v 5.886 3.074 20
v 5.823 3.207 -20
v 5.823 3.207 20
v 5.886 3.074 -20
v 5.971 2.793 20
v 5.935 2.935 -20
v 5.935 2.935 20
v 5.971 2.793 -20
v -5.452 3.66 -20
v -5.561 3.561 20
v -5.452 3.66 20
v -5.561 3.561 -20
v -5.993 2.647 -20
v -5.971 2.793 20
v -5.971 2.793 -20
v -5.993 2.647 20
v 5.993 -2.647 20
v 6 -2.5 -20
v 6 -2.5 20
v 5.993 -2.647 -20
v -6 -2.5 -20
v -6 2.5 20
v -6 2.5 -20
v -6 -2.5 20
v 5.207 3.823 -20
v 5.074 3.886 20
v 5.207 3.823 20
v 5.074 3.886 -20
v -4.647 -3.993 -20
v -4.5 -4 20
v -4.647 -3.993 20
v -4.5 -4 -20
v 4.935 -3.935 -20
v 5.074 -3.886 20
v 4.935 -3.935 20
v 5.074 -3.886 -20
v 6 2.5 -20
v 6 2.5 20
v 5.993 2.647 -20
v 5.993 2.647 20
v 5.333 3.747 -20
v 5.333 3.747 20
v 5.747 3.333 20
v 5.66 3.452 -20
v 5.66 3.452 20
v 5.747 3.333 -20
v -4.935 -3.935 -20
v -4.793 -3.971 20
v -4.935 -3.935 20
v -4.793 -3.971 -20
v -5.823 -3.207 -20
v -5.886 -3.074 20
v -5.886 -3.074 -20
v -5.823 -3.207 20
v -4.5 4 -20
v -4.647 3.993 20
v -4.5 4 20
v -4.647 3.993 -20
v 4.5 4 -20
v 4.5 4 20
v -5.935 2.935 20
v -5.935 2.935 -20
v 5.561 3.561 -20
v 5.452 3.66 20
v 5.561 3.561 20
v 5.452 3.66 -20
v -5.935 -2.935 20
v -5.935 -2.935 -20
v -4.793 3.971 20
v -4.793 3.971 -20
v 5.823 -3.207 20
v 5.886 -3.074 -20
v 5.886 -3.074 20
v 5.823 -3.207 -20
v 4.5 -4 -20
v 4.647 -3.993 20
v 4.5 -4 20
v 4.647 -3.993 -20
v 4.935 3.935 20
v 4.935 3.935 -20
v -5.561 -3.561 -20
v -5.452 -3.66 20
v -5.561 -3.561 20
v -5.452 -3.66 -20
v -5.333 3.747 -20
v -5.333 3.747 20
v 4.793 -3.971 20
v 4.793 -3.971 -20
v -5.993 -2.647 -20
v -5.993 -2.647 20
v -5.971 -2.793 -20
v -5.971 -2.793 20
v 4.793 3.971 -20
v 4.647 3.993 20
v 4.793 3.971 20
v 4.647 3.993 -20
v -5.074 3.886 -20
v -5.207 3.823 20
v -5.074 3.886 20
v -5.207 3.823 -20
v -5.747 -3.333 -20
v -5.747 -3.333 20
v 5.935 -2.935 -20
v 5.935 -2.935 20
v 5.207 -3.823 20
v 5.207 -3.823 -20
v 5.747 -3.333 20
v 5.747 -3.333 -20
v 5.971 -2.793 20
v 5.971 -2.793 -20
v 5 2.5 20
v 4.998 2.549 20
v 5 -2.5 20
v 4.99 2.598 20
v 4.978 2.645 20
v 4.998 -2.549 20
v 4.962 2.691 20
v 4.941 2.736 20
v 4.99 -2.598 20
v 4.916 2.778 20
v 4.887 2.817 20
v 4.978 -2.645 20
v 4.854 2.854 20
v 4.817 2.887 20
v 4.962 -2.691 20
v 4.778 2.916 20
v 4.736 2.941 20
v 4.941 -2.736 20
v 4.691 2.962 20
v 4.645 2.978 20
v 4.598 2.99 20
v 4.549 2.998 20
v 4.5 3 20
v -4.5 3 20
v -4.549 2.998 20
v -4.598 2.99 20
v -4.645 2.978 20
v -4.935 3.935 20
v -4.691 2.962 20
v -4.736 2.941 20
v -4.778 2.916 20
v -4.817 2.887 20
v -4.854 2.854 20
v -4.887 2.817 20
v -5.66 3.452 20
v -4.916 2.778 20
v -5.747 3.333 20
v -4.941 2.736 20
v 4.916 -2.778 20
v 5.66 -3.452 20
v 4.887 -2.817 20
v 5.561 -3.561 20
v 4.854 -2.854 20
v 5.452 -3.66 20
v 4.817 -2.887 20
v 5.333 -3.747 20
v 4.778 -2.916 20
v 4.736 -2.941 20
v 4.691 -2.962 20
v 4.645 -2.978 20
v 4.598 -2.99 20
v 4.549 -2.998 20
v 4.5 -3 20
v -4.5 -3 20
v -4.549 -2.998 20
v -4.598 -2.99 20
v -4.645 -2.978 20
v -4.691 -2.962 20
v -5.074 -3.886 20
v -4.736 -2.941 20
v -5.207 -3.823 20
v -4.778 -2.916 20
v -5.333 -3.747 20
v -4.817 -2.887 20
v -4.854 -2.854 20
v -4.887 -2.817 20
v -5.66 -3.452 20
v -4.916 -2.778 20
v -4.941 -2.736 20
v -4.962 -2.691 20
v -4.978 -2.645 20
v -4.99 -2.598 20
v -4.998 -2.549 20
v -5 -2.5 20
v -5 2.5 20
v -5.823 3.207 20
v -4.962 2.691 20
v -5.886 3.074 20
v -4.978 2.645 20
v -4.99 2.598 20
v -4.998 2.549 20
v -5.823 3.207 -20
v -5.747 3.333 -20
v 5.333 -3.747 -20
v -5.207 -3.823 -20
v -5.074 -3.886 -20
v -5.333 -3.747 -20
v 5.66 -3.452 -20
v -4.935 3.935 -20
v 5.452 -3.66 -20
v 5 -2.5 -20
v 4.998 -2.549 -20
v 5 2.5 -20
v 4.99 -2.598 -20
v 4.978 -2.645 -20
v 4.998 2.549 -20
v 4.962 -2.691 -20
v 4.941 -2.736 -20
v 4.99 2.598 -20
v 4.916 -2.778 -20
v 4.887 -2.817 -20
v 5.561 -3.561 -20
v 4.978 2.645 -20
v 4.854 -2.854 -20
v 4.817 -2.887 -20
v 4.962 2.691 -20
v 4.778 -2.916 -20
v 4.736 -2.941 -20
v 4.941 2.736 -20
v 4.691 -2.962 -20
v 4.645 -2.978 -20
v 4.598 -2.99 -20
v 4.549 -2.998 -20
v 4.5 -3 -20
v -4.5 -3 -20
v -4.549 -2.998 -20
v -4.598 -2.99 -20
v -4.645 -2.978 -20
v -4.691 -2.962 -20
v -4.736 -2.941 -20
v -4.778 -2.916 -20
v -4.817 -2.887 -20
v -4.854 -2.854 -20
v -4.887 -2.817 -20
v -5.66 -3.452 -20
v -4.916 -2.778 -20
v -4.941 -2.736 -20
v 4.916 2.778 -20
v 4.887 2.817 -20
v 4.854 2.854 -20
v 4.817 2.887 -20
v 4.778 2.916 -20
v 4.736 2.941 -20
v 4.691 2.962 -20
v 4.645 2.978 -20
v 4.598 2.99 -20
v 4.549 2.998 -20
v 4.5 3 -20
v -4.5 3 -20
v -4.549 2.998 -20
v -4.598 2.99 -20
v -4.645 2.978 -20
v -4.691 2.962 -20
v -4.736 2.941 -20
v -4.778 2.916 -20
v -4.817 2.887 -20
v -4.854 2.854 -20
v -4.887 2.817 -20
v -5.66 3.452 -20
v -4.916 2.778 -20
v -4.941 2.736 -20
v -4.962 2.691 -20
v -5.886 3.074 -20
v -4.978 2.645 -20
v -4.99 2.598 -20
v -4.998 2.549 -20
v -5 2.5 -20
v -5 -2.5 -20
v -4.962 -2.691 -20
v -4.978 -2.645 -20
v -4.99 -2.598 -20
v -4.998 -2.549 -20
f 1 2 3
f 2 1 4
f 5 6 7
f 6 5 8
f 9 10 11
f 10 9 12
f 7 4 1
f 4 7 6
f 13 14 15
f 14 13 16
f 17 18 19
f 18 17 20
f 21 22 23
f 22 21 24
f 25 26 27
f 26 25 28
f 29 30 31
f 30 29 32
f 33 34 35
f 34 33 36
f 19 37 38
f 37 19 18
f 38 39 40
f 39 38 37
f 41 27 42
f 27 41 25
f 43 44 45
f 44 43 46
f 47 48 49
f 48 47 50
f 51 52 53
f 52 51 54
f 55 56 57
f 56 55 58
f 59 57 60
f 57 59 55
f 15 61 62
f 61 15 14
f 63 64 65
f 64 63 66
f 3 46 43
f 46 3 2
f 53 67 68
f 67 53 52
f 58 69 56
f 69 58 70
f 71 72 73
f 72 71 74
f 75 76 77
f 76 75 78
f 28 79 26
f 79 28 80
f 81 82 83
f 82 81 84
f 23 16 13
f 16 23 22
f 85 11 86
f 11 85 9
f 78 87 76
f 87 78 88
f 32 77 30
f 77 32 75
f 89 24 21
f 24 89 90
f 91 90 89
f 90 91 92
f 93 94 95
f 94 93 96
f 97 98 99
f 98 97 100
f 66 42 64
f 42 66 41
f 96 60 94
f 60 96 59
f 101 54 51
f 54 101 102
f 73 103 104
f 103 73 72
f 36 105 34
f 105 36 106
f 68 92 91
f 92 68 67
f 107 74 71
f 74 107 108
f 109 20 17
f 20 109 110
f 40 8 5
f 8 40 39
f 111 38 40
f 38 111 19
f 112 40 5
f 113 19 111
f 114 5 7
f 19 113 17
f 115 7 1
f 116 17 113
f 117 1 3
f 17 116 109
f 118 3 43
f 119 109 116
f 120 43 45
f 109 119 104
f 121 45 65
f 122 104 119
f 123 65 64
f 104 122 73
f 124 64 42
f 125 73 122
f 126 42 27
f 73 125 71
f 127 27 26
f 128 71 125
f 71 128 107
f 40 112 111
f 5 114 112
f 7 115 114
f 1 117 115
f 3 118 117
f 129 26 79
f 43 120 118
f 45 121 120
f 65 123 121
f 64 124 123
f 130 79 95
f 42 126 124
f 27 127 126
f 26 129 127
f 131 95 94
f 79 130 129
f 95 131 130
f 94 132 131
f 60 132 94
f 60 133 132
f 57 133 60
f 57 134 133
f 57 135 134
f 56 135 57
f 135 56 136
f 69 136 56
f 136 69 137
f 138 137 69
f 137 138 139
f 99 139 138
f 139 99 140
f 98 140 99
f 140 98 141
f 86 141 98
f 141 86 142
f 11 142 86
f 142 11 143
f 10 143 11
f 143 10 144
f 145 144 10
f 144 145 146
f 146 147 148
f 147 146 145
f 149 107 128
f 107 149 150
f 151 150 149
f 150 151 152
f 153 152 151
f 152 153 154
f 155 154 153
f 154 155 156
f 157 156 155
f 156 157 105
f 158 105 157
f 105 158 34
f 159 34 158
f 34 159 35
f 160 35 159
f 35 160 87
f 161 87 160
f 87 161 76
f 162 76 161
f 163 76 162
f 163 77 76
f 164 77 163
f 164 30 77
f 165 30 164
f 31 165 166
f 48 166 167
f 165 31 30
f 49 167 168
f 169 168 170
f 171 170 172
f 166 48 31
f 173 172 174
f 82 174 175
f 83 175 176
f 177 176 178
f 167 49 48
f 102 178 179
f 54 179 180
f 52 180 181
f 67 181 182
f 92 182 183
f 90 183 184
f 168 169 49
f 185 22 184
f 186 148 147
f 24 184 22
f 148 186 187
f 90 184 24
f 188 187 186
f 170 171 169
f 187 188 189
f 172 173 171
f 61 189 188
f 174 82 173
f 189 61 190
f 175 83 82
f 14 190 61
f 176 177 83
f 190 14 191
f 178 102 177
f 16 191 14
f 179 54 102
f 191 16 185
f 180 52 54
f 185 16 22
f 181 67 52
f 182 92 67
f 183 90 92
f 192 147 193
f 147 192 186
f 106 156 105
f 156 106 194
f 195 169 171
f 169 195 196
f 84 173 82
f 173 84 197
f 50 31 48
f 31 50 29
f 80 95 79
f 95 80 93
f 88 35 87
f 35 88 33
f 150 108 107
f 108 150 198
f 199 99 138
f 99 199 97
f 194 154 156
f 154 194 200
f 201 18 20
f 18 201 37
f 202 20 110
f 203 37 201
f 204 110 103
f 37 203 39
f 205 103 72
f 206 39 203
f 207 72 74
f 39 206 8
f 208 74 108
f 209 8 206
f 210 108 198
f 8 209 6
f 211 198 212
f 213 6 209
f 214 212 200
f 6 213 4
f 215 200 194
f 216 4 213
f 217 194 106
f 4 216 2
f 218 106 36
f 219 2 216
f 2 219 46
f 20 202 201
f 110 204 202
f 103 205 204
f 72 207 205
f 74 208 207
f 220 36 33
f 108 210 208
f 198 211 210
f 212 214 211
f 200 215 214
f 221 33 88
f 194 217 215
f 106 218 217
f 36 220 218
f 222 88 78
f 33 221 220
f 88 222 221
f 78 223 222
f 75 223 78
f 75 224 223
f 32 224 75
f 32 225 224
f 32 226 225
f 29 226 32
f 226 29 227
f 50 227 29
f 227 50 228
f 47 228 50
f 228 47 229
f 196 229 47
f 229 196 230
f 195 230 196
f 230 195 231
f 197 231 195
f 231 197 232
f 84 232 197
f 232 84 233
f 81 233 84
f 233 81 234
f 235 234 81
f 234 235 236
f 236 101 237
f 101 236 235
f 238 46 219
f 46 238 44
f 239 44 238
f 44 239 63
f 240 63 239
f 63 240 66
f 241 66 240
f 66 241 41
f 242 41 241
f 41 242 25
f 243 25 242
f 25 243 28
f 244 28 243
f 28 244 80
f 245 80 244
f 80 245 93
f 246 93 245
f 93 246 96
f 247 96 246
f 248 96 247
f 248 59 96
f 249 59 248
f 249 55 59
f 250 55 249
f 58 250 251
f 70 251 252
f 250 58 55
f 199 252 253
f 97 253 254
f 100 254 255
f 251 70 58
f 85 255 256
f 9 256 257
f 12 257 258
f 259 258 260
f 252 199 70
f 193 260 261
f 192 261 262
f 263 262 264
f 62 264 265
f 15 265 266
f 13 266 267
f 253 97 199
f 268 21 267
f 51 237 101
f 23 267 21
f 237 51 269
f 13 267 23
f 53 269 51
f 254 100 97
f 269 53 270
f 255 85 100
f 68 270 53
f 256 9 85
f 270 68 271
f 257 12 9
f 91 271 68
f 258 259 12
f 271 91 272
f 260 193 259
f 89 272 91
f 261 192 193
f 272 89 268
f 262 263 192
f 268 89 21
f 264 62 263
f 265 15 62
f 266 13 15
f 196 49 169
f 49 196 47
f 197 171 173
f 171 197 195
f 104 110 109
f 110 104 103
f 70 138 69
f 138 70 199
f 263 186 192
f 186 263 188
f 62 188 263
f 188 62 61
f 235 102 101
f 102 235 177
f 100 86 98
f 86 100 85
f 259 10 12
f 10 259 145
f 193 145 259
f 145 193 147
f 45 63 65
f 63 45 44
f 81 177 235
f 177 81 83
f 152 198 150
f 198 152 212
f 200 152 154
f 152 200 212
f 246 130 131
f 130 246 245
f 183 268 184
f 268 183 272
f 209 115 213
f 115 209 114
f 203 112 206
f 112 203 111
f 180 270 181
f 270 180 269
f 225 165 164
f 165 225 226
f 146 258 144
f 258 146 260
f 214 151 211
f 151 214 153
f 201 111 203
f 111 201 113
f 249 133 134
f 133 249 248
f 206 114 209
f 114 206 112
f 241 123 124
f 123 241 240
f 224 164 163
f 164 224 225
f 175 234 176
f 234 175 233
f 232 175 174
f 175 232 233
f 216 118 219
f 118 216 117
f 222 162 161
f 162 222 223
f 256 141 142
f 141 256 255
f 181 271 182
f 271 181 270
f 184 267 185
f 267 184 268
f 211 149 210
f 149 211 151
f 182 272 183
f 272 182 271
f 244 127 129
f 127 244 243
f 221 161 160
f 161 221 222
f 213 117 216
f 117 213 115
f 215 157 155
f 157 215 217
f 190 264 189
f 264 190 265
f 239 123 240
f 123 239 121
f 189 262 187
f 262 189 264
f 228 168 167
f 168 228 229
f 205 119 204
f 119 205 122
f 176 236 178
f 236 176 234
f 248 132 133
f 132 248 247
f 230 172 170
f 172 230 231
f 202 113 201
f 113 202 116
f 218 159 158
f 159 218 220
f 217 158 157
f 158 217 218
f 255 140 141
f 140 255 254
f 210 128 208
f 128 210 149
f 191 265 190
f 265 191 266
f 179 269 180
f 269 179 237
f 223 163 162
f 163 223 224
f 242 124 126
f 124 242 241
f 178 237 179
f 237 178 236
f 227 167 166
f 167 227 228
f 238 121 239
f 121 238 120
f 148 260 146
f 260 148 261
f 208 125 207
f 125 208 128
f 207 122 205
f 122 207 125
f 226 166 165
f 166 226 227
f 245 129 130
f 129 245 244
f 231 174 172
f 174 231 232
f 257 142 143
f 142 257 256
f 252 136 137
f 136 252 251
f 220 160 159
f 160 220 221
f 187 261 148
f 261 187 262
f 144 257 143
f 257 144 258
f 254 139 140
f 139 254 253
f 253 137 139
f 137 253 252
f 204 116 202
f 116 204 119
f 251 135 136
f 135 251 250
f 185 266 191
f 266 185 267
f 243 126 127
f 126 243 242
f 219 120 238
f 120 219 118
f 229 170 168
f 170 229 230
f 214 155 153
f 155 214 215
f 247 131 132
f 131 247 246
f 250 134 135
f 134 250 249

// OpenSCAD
$fn = 64;

module box_section_tube(L=40, W=12, H=8, t=1, r_i=0.5) {
    r_o = r_i + t;

    module rounded_rect_2d(w, h, r) {
        if (r <= 0) {
            square([w, h], center=true);
        } else {
            minkowski() {
                square([w - 2*r, h - 2*r], center=true);
                circle(r=r);
            }
        }
    }

    difference() {
        linear_extrude(height=L, center=true, convexity=10)
            rounded_rect_2d(W, H, r_o);

        linear_extrude(height=L + 2, center=true, convexity=10)
            rounded_rect_2d(W - 2*t, H - 2*t, r_i);
    }
}

box_section_tube();
